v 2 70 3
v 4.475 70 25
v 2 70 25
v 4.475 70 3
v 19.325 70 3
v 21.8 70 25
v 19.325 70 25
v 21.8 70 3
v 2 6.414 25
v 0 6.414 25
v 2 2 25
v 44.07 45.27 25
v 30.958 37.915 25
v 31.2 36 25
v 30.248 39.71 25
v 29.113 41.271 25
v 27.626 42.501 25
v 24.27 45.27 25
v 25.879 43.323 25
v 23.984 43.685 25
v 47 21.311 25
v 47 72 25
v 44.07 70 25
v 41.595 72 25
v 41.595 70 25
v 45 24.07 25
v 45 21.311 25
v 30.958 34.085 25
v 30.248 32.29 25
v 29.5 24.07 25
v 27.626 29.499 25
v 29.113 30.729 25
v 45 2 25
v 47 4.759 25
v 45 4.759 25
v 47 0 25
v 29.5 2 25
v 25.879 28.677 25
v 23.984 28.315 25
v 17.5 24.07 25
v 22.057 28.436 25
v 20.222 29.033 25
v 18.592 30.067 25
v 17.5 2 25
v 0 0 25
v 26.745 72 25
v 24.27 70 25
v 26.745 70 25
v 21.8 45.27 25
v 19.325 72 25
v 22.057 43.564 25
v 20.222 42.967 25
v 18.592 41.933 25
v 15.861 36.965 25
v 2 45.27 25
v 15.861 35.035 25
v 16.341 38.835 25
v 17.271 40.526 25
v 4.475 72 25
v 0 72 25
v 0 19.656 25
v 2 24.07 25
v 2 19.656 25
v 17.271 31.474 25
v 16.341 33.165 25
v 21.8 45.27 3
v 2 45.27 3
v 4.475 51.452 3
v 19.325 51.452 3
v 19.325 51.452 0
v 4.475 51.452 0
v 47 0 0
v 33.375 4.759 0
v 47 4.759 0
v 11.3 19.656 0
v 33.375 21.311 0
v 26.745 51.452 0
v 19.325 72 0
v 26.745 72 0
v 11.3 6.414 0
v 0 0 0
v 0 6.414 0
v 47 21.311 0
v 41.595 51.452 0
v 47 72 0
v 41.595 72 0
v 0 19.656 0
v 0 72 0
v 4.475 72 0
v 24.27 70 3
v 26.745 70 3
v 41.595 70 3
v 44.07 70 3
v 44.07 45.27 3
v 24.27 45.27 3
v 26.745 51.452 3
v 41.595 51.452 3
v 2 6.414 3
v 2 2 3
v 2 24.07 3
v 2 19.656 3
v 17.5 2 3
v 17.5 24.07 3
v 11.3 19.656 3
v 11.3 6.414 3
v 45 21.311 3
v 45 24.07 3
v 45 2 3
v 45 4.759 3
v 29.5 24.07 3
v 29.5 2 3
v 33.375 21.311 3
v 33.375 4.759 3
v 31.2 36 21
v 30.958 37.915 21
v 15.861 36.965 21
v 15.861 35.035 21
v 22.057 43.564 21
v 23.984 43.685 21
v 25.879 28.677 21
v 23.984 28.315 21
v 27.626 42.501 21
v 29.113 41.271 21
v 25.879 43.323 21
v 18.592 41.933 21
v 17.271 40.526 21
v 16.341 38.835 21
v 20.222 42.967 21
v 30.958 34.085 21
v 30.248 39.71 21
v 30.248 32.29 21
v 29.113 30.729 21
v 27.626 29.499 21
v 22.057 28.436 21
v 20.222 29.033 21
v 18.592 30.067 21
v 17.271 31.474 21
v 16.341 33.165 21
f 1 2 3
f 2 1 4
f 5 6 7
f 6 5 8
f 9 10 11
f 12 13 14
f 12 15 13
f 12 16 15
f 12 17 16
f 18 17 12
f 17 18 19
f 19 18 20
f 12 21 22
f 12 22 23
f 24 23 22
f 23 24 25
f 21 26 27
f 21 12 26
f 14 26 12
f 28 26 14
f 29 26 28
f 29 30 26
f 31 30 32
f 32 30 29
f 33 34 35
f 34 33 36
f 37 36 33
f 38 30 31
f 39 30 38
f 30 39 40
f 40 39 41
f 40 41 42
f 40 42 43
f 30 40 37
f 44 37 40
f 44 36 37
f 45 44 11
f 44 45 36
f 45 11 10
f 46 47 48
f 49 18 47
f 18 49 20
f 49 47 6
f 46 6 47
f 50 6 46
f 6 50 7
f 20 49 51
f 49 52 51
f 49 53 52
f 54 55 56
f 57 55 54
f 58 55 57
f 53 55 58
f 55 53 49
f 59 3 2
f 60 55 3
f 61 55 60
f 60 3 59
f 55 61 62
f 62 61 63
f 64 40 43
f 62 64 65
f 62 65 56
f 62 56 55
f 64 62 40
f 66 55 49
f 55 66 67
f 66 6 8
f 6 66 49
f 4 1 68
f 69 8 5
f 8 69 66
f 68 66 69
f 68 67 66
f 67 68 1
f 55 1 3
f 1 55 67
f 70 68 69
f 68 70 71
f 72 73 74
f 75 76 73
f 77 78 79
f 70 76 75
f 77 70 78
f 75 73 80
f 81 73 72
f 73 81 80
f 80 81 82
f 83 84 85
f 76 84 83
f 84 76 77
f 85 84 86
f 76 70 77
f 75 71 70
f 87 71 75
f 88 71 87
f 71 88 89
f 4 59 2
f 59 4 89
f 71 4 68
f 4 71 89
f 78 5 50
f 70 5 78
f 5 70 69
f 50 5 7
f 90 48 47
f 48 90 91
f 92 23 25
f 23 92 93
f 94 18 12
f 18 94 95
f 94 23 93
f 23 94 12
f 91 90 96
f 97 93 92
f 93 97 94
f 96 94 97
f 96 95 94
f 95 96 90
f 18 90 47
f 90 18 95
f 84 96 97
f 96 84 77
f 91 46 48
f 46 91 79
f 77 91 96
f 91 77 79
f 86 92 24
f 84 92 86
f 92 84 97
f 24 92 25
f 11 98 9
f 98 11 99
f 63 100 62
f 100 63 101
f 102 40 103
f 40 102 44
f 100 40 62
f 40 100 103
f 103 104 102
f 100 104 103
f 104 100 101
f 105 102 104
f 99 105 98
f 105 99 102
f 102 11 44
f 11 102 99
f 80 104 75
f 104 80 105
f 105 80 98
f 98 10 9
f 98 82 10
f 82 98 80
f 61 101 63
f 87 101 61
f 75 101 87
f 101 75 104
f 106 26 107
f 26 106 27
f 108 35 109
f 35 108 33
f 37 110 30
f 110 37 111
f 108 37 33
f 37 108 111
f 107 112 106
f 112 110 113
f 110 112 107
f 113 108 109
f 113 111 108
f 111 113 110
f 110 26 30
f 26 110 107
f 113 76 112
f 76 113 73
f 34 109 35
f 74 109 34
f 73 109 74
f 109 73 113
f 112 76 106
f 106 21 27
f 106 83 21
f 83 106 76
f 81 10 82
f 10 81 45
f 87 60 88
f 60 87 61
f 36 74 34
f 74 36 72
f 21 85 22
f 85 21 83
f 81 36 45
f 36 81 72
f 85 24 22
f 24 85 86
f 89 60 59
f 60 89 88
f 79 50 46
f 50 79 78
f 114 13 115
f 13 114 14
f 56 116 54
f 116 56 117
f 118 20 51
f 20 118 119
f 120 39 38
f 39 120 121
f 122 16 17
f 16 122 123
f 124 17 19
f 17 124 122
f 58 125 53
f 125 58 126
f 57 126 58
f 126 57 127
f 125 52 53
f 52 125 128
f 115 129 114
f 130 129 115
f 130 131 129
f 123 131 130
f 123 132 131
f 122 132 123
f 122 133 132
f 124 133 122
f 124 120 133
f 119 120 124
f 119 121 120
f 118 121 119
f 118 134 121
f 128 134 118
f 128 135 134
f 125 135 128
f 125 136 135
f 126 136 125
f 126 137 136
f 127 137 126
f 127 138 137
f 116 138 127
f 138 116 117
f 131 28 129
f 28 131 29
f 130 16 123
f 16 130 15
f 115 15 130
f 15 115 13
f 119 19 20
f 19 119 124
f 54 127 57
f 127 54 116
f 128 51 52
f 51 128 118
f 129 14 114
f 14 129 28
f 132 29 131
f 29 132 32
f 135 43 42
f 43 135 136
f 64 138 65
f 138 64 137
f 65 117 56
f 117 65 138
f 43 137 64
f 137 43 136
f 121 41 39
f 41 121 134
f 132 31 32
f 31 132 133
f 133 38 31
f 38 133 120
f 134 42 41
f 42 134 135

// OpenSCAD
// file: SquarePileLib.scad
module LeftPile(wallThickness, totalHeight, singlePileHeight, singlePileWidth, singlePileLength, pileCount, openingSizePercent = .75){
    pileHeight = (pileCount * singlePileHeight) + .5;
    lengthOpeningSize = singlePileLength * openingSizePercent;
    widthOpeningSize = singlePileWidth * openingSizePercent;
    blockerSize = (singlePileWidth - widthOpeningSize) / 2;
    
    translate([wallThickness, wallThickness, totalHeight - pileHeight])
        cube([singlePileLength, singlePileWidth, pileHeight]);
    translate([-.00001, wallThickness + (blockerSize), 0])
        cube([wallThickness + lengthOpeningSize, widthOpeningSize, totalHeight]);
}

module RightPile(wallThickness, totalHeight, singlePileHeight, singlePileWidth, singlePileLength, pileCount, openingSizePercent = .75){
    translate([0, wallThickness + wallThickness + singlePileWidth, 0])
        rotate([0, 0, 180])
            LeftPile(wallThickness, totalHeight, singlePileHeight, singlePileWidth, singlePileLength, pileCount);
}

module BottomPile(wallThickness, totalHeight, singlePileHeight, singlePileWidth, singlePileLength, pileCount, openingSizePercent = .75){
    translate([wallThickness + wallThickness + singlePileWidth, 0, 0])
        rotate([0, 0, 90])
            LeftPile(wallThickness, totalHeight, singlePileHeight, singlePileWidth, singlePileLength, pileCount);
}

module TopPile(wallThickness, totalHeight, singlePileHeight, singlePileWidth, singlePileLength, pileCount, openingSizePercent = .75){
        rotate([0, 0, 270])
            LeftPile(wallThickness, totalHeight, singlePileHeight, singlePileWidth, singlePileLength, pileCount);
}
// file: ColonistsTool3xLib.scad
include<SquarePileLib.scad>
//25.82 by 32.82 by 2.15
singleTool3xPileHeight = 2.15;
singleTool3xPileWidth = 19.30 + .5;
singleTool3xPileLength = 24.23 + .5;

module LeftTool3xPile(wallThickness, totalHeight, tool3xPileCount){
    LeftPile(
        wallThickness,
        totalHeight,
        singleTool3xPileHeight,
        singleTool3xPileWidth,
        singleTool3xPileLength,
        tool3xPileCount);
}

module RightTool3xPile(wallThickness, totalHeight, tool3xPileCount){
    RightPile(
        wallThickness,
        totalHeight,
        singleTool3xPileHeight,
        singleTool3xPileWidth,
        singleTool3xPileLength,
        tool3xPileCount);
}

module BottomTool3xPile(wallThickness, totalHeight, tool3xPileCount){
    BottomPile(
        wallThickness,
        totalHeight,
        singleTool3xPileHeight,
        singleTool3xPileWidth,
        singleTool3xPileLength,
        tool3xPileCount);
}

module TopTool3xPile(wallThickness, totalHeight, tool3xPileCount){
    TopPile(
        wallThickness,
        totalHeight,
        singleTool3xPileHeight,
        singleTool3xPileWidth,
        singleTool3xPileLength,
        tool3xPileCount);
}

function tool3xPileHeight(tool3xPileCount) =
    (tool3xPileCount * singleTool3xPileHeight) + .5;
// file: ColonistsTool1xLib.scad
include<SquarePileLib.scad>
//25.82 by 32.82 by 2.15
singleTool1xPileHeight = 2.15;
singleTool1xPileWidth = 21.57 + .5;
singleTool1xPileLength = 15 + .5;

module LeftTool1xPile(wallThickness, totalHeight, tool1xPileCount){
    LeftPile(
        wallThickness,
        totalHeight,
        singleTool1xPileHeight,
        singleTool1xPileWidth,
        singleTool1xPileLength,
        tool1xPileCount,
        .6);
}

module RightTool1xPile(wallThickness, totalHeight, tool1xPileCount){
    RightPile(
        wallThickness,
        totalHeight,
        singleTool1xPileHeight,
        singleTool1xPileWidth,
        singleTool1xPileLength,
        tool1xPileCount,
        .6);
}

module BottomTool1xPile(wallThickness, totalHeight, tool1xPileCount){
    BottomPile(
        wallThickness,
        totalHeight,
        singleTool1xPileHeight,
        singleTool1xPileWidth,
        singleTool1xPileLength,
        tool1xPileCount,
        .6);
}

module TopTool1xPile(wallThickness, totalHeight, tool1xPileCount){
    TopPile(
        wallThickness,
        totalHeight,
        singleTool1xPileHeight,
        singleTool1xPileWidth,
        singleTool1xPileLength,
        tool1xPileCount,
        .6);
}

function tool1xPileHeight(tool1xPileCount) =
    (tool1xPileCount * singleTool1xPileHeight) + .5;
// main file
include<ColonistsTool1xLib.scad>
include<ColonistsTool3xLib.scad>
wallThickness = 2;
floorHeight = 3;
tileCount = 10;
magnetBaseInnerDiameter = 15.4;
magnetHeight = 4.0;
height = tool3xPileHeight(tileCount) + floorHeight;
length = 47;
width = 72;


difference() {
    
    cube([length, width, height]);
    translate([0, 0, 0])
        LeftTool1xPile(wallThickness, height, tileCount);
    translate([length, 0, 0])
        RightTool1xPile(wallThickness, height, tileCount);
    
    translate([0, width, 0])
        TopTool3xPile(wallThickness, height, tileCount);
    translate([length - (singleTool3xPileLength), width, 0])
        TopTool3xPile(wallThickness, height, tileCount);
   
    translate([length/2, width/2, height - magnetHeight])
        cylinder(magnetHeight, d=magnetBaseInnerDiameter);
}
